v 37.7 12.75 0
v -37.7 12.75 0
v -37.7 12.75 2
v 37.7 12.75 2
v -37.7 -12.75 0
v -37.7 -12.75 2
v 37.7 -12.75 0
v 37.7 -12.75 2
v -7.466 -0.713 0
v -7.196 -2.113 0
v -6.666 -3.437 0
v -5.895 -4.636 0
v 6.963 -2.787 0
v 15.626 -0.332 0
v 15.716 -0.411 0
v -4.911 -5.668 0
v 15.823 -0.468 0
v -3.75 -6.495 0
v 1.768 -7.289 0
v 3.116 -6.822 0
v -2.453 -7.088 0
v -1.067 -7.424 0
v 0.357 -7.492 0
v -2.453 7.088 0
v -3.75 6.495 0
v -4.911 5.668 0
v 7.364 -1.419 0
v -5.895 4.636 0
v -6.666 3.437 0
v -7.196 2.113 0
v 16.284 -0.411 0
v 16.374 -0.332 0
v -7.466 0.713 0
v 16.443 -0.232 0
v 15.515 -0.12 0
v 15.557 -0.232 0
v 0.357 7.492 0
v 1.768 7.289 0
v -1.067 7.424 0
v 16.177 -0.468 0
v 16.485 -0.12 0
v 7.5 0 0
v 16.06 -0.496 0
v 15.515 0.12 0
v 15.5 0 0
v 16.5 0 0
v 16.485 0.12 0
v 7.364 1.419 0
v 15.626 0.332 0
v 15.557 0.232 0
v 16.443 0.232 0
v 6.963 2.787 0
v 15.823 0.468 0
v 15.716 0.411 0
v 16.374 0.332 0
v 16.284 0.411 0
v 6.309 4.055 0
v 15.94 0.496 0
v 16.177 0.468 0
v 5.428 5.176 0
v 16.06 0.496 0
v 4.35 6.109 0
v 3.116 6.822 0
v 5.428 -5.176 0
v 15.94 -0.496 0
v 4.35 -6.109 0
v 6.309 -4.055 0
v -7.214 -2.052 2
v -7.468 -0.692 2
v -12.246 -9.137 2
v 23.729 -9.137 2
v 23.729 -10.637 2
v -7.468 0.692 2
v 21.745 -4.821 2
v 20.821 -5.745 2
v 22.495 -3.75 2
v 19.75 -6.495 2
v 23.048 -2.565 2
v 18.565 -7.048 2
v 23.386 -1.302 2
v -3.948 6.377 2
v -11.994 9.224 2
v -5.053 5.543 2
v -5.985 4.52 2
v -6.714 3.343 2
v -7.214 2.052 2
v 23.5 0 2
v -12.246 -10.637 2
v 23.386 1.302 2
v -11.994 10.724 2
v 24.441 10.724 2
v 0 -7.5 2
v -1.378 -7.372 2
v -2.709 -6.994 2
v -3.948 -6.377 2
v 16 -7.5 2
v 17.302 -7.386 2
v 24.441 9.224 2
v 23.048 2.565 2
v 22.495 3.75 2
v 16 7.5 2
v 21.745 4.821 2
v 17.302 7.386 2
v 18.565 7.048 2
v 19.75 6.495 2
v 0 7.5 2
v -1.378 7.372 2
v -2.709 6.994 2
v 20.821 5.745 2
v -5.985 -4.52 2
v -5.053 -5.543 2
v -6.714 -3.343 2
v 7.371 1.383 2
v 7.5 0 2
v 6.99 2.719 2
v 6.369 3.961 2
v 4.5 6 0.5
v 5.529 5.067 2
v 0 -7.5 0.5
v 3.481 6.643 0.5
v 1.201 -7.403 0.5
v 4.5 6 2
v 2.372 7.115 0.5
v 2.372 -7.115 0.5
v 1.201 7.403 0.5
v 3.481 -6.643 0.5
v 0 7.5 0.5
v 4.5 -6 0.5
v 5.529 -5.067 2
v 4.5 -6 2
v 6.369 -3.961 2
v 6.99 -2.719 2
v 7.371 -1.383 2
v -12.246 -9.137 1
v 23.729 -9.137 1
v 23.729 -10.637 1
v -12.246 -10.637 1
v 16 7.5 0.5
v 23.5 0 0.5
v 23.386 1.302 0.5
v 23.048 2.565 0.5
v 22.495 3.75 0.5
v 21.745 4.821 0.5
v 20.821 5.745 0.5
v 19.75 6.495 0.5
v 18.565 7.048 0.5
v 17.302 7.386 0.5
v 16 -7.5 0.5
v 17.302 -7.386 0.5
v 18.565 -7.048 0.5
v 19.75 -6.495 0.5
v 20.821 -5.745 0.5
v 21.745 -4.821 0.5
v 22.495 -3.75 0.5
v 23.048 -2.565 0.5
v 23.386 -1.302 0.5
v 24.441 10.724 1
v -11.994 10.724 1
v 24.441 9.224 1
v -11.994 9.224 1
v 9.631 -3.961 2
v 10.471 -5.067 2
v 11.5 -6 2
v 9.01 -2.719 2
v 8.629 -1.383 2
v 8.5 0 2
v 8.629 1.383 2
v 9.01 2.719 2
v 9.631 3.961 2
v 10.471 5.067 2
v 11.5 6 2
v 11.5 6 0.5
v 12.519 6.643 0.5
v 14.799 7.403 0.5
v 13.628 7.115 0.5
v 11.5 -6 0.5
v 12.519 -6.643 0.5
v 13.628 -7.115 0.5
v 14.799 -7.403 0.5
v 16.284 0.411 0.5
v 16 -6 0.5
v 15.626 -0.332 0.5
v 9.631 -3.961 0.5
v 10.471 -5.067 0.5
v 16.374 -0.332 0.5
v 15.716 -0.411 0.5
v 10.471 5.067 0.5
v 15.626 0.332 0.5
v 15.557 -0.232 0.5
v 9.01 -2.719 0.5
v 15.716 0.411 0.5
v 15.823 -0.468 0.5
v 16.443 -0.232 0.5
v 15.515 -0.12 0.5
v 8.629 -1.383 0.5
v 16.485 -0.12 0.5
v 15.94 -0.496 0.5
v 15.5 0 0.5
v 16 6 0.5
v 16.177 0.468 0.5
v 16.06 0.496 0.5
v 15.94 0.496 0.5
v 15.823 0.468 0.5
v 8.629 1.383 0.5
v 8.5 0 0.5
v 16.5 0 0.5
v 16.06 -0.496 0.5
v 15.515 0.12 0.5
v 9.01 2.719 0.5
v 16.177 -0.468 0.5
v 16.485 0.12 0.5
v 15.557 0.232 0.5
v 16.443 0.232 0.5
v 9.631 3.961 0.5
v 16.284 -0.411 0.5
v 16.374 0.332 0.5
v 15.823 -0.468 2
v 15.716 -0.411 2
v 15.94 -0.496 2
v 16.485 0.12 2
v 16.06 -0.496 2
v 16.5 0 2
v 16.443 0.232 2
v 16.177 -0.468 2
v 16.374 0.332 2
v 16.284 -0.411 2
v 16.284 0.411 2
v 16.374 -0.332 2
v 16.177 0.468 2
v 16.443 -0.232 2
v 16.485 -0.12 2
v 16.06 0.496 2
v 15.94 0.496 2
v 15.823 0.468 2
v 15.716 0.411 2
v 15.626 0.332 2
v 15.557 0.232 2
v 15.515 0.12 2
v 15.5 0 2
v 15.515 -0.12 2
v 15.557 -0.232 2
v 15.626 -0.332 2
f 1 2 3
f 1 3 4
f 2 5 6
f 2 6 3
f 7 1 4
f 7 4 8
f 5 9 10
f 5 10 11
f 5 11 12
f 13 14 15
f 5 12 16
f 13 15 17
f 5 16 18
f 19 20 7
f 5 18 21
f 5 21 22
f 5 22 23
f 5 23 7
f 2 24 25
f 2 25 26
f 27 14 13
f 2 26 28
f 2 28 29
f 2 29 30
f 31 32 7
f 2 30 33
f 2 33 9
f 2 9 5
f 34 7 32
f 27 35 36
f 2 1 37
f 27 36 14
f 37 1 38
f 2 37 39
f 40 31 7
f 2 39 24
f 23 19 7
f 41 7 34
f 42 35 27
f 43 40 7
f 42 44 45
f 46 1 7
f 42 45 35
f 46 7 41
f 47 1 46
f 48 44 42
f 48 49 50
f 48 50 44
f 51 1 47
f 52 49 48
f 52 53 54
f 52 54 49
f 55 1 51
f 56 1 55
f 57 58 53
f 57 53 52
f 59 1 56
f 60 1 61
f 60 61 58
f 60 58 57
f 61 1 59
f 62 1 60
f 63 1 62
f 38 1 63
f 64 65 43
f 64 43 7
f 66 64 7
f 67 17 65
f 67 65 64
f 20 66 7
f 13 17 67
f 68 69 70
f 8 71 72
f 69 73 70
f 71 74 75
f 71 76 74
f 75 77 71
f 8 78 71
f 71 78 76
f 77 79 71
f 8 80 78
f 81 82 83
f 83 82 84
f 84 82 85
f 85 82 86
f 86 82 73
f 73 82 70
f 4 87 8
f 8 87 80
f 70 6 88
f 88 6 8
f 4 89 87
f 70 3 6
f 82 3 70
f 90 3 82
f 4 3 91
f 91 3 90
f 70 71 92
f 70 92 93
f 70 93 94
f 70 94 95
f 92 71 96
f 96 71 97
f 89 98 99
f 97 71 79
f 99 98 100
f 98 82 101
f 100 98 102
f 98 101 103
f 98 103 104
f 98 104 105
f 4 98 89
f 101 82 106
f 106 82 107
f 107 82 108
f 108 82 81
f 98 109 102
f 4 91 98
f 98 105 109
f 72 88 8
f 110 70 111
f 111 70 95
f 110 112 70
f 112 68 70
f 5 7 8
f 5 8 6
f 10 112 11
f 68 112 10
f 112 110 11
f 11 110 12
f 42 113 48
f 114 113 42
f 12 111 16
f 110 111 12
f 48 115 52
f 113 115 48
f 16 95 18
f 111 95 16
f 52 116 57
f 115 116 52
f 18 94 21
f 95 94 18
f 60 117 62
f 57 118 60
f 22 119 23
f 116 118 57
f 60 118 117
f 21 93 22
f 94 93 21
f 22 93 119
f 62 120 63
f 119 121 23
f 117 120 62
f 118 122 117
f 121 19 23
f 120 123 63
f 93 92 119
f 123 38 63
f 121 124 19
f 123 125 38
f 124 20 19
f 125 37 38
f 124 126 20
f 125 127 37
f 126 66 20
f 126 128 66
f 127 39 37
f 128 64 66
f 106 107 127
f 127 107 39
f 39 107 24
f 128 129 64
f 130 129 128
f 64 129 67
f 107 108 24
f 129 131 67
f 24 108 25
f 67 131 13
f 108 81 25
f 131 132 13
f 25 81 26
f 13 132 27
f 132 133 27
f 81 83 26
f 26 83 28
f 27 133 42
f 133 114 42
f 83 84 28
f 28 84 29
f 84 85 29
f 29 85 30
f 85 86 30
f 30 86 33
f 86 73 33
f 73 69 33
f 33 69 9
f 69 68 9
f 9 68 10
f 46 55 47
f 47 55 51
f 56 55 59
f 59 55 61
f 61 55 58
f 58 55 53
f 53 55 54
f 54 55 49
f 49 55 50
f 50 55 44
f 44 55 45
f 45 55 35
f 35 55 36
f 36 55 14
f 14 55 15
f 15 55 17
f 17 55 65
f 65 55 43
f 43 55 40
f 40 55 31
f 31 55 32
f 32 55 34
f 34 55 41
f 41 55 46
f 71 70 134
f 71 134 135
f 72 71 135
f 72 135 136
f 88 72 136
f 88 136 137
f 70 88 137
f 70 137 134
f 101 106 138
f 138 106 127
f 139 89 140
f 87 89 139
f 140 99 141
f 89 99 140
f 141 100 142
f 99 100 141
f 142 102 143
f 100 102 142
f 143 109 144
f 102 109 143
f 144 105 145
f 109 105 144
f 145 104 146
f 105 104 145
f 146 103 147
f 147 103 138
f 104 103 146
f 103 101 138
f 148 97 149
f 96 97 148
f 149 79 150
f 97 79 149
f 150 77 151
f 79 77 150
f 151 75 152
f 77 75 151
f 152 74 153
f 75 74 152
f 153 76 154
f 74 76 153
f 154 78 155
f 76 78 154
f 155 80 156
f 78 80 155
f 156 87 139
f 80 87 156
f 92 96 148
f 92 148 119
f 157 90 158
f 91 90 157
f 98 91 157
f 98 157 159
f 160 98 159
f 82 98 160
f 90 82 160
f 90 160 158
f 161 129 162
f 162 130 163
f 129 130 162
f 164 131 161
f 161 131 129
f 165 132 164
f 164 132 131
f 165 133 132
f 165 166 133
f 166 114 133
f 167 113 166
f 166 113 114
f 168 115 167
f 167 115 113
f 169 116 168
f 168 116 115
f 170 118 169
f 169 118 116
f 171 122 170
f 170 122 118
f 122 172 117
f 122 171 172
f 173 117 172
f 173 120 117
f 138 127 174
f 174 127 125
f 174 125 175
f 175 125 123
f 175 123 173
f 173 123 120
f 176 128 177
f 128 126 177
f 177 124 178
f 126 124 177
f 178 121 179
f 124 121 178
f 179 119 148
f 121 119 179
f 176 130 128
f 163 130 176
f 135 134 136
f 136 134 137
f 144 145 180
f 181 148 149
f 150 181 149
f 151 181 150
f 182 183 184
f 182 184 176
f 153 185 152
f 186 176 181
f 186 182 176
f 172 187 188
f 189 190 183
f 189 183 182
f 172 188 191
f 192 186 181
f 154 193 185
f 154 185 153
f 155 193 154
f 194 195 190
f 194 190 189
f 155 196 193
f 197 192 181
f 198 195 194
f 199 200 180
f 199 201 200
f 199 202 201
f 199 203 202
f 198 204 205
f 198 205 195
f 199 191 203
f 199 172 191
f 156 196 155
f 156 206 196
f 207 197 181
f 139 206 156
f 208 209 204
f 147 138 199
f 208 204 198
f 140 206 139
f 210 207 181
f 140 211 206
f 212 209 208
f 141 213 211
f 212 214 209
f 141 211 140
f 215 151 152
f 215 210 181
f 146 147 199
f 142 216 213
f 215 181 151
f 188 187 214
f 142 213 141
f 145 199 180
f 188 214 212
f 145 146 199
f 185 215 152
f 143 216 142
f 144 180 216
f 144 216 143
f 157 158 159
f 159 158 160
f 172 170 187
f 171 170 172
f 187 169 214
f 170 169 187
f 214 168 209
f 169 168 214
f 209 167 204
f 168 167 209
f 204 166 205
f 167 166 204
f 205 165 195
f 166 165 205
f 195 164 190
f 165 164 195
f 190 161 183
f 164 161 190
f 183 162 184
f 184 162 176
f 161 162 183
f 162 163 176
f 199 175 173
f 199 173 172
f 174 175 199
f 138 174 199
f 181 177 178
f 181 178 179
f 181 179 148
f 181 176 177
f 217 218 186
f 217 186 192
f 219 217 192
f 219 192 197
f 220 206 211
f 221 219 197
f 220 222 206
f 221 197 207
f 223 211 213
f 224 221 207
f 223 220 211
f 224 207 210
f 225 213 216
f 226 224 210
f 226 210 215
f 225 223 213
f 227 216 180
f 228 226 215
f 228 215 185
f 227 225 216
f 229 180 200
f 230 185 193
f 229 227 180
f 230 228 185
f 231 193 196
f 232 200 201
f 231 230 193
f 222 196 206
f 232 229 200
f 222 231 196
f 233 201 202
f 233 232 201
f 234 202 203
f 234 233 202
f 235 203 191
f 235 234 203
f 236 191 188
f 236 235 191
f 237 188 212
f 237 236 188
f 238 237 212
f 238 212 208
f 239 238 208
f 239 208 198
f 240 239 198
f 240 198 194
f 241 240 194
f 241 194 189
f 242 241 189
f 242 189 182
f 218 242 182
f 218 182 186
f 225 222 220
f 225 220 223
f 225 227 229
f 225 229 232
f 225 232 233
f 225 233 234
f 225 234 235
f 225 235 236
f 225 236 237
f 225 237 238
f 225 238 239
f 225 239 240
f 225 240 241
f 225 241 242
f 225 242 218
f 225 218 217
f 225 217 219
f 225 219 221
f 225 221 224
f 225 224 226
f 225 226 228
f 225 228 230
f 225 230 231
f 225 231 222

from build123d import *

# Parameters (mm, degrees)
SKETCH_W        = 75.4
SKETCH_H        = 25.5
PAD_DEPTH       = 2
SKETCH001_R     = 7.5
POCKET_DEPTH    = 2
SKETCH002_R     = 7.5
POCKET001_DEPTH = 1.5
SKETCH003_R     = 0.5
PAD001_DEPTH    = 2
SKETCH004_W     = 16
SKETCH004_H     = 1.5
POCKET002_DEPTH = 1.5
SKETCH006_W     = 36.435092
SKETCH006_H     = 1.5
SKETCH006_W_2   = 35.97442
POCKET003_DEPTH = 1


with BuildPart() as part:
    # Sketch → Pad (new body)
    with BuildSketch(Plane.XY):
        Rectangle(SKETCH_W, SKETCH_H)
    extrude(amount=PAD_DEPTH)

    # Sketch001 (on Face6 of Pad) → Pocket (cut)
    with BuildSketch(Plane.XY.offset(2)):
        Circle(SKETCH001_R)
    extrude(amount=-POCKET_DEPTH, mode=Mode.SUBTRACT)

    # Sketch002 (on Face5 of Pocket) → Pocket001 (cut)
    with BuildSketch(Plane.XY.offset(2)):
        with Locations((16, 0)):
            Circle(SKETCH002_R)
    extrude(amount=-POCKET001_DEPTH, mode=Mode.SUBTRACT)

    # Sketch003 (on Face5 of Pocket001) → Pad001 (join)
    with BuildSketch(Plane.XY.offset(2)):
        with Locations((16, 0)):
            Circle(SKETCH003_R)
    extrude(amount=-PAD001_DEPTH)

    # Sketch004 (on Face5 of Pad001) → Pocket002 (cut)
    with BuildSketch(Plane.XY.offset(2)):
        with Locations((8, 6.75)):
            Rectangle(SKETCH004_W, SKETCH004_H)
        with Locations((8, -6.75)):
            Rectangle(SKETCH004_W, SKETCH004_H)
    extrude(amount=-POCKET002_DEPTH, mode=Mode.SUBTRACT)

    # Sketch006 (on Face5 of Pocket002) → Pocket003 (cut)
    with BuildSketch(Plane.XY.offset(2)):
        with Locations((6.223254, 9.974189)):
            Rectangle(SKETCH006_W, SKETCH006_H)
        with Locations((5.741651, -9.886934)):
            Rectangle(SKETCH006_W_2, SKETCH006_H)
    extrude(amount=-POCKET003_DEPTH, mode=Mode.SUBTRACT)


solid = part.part
